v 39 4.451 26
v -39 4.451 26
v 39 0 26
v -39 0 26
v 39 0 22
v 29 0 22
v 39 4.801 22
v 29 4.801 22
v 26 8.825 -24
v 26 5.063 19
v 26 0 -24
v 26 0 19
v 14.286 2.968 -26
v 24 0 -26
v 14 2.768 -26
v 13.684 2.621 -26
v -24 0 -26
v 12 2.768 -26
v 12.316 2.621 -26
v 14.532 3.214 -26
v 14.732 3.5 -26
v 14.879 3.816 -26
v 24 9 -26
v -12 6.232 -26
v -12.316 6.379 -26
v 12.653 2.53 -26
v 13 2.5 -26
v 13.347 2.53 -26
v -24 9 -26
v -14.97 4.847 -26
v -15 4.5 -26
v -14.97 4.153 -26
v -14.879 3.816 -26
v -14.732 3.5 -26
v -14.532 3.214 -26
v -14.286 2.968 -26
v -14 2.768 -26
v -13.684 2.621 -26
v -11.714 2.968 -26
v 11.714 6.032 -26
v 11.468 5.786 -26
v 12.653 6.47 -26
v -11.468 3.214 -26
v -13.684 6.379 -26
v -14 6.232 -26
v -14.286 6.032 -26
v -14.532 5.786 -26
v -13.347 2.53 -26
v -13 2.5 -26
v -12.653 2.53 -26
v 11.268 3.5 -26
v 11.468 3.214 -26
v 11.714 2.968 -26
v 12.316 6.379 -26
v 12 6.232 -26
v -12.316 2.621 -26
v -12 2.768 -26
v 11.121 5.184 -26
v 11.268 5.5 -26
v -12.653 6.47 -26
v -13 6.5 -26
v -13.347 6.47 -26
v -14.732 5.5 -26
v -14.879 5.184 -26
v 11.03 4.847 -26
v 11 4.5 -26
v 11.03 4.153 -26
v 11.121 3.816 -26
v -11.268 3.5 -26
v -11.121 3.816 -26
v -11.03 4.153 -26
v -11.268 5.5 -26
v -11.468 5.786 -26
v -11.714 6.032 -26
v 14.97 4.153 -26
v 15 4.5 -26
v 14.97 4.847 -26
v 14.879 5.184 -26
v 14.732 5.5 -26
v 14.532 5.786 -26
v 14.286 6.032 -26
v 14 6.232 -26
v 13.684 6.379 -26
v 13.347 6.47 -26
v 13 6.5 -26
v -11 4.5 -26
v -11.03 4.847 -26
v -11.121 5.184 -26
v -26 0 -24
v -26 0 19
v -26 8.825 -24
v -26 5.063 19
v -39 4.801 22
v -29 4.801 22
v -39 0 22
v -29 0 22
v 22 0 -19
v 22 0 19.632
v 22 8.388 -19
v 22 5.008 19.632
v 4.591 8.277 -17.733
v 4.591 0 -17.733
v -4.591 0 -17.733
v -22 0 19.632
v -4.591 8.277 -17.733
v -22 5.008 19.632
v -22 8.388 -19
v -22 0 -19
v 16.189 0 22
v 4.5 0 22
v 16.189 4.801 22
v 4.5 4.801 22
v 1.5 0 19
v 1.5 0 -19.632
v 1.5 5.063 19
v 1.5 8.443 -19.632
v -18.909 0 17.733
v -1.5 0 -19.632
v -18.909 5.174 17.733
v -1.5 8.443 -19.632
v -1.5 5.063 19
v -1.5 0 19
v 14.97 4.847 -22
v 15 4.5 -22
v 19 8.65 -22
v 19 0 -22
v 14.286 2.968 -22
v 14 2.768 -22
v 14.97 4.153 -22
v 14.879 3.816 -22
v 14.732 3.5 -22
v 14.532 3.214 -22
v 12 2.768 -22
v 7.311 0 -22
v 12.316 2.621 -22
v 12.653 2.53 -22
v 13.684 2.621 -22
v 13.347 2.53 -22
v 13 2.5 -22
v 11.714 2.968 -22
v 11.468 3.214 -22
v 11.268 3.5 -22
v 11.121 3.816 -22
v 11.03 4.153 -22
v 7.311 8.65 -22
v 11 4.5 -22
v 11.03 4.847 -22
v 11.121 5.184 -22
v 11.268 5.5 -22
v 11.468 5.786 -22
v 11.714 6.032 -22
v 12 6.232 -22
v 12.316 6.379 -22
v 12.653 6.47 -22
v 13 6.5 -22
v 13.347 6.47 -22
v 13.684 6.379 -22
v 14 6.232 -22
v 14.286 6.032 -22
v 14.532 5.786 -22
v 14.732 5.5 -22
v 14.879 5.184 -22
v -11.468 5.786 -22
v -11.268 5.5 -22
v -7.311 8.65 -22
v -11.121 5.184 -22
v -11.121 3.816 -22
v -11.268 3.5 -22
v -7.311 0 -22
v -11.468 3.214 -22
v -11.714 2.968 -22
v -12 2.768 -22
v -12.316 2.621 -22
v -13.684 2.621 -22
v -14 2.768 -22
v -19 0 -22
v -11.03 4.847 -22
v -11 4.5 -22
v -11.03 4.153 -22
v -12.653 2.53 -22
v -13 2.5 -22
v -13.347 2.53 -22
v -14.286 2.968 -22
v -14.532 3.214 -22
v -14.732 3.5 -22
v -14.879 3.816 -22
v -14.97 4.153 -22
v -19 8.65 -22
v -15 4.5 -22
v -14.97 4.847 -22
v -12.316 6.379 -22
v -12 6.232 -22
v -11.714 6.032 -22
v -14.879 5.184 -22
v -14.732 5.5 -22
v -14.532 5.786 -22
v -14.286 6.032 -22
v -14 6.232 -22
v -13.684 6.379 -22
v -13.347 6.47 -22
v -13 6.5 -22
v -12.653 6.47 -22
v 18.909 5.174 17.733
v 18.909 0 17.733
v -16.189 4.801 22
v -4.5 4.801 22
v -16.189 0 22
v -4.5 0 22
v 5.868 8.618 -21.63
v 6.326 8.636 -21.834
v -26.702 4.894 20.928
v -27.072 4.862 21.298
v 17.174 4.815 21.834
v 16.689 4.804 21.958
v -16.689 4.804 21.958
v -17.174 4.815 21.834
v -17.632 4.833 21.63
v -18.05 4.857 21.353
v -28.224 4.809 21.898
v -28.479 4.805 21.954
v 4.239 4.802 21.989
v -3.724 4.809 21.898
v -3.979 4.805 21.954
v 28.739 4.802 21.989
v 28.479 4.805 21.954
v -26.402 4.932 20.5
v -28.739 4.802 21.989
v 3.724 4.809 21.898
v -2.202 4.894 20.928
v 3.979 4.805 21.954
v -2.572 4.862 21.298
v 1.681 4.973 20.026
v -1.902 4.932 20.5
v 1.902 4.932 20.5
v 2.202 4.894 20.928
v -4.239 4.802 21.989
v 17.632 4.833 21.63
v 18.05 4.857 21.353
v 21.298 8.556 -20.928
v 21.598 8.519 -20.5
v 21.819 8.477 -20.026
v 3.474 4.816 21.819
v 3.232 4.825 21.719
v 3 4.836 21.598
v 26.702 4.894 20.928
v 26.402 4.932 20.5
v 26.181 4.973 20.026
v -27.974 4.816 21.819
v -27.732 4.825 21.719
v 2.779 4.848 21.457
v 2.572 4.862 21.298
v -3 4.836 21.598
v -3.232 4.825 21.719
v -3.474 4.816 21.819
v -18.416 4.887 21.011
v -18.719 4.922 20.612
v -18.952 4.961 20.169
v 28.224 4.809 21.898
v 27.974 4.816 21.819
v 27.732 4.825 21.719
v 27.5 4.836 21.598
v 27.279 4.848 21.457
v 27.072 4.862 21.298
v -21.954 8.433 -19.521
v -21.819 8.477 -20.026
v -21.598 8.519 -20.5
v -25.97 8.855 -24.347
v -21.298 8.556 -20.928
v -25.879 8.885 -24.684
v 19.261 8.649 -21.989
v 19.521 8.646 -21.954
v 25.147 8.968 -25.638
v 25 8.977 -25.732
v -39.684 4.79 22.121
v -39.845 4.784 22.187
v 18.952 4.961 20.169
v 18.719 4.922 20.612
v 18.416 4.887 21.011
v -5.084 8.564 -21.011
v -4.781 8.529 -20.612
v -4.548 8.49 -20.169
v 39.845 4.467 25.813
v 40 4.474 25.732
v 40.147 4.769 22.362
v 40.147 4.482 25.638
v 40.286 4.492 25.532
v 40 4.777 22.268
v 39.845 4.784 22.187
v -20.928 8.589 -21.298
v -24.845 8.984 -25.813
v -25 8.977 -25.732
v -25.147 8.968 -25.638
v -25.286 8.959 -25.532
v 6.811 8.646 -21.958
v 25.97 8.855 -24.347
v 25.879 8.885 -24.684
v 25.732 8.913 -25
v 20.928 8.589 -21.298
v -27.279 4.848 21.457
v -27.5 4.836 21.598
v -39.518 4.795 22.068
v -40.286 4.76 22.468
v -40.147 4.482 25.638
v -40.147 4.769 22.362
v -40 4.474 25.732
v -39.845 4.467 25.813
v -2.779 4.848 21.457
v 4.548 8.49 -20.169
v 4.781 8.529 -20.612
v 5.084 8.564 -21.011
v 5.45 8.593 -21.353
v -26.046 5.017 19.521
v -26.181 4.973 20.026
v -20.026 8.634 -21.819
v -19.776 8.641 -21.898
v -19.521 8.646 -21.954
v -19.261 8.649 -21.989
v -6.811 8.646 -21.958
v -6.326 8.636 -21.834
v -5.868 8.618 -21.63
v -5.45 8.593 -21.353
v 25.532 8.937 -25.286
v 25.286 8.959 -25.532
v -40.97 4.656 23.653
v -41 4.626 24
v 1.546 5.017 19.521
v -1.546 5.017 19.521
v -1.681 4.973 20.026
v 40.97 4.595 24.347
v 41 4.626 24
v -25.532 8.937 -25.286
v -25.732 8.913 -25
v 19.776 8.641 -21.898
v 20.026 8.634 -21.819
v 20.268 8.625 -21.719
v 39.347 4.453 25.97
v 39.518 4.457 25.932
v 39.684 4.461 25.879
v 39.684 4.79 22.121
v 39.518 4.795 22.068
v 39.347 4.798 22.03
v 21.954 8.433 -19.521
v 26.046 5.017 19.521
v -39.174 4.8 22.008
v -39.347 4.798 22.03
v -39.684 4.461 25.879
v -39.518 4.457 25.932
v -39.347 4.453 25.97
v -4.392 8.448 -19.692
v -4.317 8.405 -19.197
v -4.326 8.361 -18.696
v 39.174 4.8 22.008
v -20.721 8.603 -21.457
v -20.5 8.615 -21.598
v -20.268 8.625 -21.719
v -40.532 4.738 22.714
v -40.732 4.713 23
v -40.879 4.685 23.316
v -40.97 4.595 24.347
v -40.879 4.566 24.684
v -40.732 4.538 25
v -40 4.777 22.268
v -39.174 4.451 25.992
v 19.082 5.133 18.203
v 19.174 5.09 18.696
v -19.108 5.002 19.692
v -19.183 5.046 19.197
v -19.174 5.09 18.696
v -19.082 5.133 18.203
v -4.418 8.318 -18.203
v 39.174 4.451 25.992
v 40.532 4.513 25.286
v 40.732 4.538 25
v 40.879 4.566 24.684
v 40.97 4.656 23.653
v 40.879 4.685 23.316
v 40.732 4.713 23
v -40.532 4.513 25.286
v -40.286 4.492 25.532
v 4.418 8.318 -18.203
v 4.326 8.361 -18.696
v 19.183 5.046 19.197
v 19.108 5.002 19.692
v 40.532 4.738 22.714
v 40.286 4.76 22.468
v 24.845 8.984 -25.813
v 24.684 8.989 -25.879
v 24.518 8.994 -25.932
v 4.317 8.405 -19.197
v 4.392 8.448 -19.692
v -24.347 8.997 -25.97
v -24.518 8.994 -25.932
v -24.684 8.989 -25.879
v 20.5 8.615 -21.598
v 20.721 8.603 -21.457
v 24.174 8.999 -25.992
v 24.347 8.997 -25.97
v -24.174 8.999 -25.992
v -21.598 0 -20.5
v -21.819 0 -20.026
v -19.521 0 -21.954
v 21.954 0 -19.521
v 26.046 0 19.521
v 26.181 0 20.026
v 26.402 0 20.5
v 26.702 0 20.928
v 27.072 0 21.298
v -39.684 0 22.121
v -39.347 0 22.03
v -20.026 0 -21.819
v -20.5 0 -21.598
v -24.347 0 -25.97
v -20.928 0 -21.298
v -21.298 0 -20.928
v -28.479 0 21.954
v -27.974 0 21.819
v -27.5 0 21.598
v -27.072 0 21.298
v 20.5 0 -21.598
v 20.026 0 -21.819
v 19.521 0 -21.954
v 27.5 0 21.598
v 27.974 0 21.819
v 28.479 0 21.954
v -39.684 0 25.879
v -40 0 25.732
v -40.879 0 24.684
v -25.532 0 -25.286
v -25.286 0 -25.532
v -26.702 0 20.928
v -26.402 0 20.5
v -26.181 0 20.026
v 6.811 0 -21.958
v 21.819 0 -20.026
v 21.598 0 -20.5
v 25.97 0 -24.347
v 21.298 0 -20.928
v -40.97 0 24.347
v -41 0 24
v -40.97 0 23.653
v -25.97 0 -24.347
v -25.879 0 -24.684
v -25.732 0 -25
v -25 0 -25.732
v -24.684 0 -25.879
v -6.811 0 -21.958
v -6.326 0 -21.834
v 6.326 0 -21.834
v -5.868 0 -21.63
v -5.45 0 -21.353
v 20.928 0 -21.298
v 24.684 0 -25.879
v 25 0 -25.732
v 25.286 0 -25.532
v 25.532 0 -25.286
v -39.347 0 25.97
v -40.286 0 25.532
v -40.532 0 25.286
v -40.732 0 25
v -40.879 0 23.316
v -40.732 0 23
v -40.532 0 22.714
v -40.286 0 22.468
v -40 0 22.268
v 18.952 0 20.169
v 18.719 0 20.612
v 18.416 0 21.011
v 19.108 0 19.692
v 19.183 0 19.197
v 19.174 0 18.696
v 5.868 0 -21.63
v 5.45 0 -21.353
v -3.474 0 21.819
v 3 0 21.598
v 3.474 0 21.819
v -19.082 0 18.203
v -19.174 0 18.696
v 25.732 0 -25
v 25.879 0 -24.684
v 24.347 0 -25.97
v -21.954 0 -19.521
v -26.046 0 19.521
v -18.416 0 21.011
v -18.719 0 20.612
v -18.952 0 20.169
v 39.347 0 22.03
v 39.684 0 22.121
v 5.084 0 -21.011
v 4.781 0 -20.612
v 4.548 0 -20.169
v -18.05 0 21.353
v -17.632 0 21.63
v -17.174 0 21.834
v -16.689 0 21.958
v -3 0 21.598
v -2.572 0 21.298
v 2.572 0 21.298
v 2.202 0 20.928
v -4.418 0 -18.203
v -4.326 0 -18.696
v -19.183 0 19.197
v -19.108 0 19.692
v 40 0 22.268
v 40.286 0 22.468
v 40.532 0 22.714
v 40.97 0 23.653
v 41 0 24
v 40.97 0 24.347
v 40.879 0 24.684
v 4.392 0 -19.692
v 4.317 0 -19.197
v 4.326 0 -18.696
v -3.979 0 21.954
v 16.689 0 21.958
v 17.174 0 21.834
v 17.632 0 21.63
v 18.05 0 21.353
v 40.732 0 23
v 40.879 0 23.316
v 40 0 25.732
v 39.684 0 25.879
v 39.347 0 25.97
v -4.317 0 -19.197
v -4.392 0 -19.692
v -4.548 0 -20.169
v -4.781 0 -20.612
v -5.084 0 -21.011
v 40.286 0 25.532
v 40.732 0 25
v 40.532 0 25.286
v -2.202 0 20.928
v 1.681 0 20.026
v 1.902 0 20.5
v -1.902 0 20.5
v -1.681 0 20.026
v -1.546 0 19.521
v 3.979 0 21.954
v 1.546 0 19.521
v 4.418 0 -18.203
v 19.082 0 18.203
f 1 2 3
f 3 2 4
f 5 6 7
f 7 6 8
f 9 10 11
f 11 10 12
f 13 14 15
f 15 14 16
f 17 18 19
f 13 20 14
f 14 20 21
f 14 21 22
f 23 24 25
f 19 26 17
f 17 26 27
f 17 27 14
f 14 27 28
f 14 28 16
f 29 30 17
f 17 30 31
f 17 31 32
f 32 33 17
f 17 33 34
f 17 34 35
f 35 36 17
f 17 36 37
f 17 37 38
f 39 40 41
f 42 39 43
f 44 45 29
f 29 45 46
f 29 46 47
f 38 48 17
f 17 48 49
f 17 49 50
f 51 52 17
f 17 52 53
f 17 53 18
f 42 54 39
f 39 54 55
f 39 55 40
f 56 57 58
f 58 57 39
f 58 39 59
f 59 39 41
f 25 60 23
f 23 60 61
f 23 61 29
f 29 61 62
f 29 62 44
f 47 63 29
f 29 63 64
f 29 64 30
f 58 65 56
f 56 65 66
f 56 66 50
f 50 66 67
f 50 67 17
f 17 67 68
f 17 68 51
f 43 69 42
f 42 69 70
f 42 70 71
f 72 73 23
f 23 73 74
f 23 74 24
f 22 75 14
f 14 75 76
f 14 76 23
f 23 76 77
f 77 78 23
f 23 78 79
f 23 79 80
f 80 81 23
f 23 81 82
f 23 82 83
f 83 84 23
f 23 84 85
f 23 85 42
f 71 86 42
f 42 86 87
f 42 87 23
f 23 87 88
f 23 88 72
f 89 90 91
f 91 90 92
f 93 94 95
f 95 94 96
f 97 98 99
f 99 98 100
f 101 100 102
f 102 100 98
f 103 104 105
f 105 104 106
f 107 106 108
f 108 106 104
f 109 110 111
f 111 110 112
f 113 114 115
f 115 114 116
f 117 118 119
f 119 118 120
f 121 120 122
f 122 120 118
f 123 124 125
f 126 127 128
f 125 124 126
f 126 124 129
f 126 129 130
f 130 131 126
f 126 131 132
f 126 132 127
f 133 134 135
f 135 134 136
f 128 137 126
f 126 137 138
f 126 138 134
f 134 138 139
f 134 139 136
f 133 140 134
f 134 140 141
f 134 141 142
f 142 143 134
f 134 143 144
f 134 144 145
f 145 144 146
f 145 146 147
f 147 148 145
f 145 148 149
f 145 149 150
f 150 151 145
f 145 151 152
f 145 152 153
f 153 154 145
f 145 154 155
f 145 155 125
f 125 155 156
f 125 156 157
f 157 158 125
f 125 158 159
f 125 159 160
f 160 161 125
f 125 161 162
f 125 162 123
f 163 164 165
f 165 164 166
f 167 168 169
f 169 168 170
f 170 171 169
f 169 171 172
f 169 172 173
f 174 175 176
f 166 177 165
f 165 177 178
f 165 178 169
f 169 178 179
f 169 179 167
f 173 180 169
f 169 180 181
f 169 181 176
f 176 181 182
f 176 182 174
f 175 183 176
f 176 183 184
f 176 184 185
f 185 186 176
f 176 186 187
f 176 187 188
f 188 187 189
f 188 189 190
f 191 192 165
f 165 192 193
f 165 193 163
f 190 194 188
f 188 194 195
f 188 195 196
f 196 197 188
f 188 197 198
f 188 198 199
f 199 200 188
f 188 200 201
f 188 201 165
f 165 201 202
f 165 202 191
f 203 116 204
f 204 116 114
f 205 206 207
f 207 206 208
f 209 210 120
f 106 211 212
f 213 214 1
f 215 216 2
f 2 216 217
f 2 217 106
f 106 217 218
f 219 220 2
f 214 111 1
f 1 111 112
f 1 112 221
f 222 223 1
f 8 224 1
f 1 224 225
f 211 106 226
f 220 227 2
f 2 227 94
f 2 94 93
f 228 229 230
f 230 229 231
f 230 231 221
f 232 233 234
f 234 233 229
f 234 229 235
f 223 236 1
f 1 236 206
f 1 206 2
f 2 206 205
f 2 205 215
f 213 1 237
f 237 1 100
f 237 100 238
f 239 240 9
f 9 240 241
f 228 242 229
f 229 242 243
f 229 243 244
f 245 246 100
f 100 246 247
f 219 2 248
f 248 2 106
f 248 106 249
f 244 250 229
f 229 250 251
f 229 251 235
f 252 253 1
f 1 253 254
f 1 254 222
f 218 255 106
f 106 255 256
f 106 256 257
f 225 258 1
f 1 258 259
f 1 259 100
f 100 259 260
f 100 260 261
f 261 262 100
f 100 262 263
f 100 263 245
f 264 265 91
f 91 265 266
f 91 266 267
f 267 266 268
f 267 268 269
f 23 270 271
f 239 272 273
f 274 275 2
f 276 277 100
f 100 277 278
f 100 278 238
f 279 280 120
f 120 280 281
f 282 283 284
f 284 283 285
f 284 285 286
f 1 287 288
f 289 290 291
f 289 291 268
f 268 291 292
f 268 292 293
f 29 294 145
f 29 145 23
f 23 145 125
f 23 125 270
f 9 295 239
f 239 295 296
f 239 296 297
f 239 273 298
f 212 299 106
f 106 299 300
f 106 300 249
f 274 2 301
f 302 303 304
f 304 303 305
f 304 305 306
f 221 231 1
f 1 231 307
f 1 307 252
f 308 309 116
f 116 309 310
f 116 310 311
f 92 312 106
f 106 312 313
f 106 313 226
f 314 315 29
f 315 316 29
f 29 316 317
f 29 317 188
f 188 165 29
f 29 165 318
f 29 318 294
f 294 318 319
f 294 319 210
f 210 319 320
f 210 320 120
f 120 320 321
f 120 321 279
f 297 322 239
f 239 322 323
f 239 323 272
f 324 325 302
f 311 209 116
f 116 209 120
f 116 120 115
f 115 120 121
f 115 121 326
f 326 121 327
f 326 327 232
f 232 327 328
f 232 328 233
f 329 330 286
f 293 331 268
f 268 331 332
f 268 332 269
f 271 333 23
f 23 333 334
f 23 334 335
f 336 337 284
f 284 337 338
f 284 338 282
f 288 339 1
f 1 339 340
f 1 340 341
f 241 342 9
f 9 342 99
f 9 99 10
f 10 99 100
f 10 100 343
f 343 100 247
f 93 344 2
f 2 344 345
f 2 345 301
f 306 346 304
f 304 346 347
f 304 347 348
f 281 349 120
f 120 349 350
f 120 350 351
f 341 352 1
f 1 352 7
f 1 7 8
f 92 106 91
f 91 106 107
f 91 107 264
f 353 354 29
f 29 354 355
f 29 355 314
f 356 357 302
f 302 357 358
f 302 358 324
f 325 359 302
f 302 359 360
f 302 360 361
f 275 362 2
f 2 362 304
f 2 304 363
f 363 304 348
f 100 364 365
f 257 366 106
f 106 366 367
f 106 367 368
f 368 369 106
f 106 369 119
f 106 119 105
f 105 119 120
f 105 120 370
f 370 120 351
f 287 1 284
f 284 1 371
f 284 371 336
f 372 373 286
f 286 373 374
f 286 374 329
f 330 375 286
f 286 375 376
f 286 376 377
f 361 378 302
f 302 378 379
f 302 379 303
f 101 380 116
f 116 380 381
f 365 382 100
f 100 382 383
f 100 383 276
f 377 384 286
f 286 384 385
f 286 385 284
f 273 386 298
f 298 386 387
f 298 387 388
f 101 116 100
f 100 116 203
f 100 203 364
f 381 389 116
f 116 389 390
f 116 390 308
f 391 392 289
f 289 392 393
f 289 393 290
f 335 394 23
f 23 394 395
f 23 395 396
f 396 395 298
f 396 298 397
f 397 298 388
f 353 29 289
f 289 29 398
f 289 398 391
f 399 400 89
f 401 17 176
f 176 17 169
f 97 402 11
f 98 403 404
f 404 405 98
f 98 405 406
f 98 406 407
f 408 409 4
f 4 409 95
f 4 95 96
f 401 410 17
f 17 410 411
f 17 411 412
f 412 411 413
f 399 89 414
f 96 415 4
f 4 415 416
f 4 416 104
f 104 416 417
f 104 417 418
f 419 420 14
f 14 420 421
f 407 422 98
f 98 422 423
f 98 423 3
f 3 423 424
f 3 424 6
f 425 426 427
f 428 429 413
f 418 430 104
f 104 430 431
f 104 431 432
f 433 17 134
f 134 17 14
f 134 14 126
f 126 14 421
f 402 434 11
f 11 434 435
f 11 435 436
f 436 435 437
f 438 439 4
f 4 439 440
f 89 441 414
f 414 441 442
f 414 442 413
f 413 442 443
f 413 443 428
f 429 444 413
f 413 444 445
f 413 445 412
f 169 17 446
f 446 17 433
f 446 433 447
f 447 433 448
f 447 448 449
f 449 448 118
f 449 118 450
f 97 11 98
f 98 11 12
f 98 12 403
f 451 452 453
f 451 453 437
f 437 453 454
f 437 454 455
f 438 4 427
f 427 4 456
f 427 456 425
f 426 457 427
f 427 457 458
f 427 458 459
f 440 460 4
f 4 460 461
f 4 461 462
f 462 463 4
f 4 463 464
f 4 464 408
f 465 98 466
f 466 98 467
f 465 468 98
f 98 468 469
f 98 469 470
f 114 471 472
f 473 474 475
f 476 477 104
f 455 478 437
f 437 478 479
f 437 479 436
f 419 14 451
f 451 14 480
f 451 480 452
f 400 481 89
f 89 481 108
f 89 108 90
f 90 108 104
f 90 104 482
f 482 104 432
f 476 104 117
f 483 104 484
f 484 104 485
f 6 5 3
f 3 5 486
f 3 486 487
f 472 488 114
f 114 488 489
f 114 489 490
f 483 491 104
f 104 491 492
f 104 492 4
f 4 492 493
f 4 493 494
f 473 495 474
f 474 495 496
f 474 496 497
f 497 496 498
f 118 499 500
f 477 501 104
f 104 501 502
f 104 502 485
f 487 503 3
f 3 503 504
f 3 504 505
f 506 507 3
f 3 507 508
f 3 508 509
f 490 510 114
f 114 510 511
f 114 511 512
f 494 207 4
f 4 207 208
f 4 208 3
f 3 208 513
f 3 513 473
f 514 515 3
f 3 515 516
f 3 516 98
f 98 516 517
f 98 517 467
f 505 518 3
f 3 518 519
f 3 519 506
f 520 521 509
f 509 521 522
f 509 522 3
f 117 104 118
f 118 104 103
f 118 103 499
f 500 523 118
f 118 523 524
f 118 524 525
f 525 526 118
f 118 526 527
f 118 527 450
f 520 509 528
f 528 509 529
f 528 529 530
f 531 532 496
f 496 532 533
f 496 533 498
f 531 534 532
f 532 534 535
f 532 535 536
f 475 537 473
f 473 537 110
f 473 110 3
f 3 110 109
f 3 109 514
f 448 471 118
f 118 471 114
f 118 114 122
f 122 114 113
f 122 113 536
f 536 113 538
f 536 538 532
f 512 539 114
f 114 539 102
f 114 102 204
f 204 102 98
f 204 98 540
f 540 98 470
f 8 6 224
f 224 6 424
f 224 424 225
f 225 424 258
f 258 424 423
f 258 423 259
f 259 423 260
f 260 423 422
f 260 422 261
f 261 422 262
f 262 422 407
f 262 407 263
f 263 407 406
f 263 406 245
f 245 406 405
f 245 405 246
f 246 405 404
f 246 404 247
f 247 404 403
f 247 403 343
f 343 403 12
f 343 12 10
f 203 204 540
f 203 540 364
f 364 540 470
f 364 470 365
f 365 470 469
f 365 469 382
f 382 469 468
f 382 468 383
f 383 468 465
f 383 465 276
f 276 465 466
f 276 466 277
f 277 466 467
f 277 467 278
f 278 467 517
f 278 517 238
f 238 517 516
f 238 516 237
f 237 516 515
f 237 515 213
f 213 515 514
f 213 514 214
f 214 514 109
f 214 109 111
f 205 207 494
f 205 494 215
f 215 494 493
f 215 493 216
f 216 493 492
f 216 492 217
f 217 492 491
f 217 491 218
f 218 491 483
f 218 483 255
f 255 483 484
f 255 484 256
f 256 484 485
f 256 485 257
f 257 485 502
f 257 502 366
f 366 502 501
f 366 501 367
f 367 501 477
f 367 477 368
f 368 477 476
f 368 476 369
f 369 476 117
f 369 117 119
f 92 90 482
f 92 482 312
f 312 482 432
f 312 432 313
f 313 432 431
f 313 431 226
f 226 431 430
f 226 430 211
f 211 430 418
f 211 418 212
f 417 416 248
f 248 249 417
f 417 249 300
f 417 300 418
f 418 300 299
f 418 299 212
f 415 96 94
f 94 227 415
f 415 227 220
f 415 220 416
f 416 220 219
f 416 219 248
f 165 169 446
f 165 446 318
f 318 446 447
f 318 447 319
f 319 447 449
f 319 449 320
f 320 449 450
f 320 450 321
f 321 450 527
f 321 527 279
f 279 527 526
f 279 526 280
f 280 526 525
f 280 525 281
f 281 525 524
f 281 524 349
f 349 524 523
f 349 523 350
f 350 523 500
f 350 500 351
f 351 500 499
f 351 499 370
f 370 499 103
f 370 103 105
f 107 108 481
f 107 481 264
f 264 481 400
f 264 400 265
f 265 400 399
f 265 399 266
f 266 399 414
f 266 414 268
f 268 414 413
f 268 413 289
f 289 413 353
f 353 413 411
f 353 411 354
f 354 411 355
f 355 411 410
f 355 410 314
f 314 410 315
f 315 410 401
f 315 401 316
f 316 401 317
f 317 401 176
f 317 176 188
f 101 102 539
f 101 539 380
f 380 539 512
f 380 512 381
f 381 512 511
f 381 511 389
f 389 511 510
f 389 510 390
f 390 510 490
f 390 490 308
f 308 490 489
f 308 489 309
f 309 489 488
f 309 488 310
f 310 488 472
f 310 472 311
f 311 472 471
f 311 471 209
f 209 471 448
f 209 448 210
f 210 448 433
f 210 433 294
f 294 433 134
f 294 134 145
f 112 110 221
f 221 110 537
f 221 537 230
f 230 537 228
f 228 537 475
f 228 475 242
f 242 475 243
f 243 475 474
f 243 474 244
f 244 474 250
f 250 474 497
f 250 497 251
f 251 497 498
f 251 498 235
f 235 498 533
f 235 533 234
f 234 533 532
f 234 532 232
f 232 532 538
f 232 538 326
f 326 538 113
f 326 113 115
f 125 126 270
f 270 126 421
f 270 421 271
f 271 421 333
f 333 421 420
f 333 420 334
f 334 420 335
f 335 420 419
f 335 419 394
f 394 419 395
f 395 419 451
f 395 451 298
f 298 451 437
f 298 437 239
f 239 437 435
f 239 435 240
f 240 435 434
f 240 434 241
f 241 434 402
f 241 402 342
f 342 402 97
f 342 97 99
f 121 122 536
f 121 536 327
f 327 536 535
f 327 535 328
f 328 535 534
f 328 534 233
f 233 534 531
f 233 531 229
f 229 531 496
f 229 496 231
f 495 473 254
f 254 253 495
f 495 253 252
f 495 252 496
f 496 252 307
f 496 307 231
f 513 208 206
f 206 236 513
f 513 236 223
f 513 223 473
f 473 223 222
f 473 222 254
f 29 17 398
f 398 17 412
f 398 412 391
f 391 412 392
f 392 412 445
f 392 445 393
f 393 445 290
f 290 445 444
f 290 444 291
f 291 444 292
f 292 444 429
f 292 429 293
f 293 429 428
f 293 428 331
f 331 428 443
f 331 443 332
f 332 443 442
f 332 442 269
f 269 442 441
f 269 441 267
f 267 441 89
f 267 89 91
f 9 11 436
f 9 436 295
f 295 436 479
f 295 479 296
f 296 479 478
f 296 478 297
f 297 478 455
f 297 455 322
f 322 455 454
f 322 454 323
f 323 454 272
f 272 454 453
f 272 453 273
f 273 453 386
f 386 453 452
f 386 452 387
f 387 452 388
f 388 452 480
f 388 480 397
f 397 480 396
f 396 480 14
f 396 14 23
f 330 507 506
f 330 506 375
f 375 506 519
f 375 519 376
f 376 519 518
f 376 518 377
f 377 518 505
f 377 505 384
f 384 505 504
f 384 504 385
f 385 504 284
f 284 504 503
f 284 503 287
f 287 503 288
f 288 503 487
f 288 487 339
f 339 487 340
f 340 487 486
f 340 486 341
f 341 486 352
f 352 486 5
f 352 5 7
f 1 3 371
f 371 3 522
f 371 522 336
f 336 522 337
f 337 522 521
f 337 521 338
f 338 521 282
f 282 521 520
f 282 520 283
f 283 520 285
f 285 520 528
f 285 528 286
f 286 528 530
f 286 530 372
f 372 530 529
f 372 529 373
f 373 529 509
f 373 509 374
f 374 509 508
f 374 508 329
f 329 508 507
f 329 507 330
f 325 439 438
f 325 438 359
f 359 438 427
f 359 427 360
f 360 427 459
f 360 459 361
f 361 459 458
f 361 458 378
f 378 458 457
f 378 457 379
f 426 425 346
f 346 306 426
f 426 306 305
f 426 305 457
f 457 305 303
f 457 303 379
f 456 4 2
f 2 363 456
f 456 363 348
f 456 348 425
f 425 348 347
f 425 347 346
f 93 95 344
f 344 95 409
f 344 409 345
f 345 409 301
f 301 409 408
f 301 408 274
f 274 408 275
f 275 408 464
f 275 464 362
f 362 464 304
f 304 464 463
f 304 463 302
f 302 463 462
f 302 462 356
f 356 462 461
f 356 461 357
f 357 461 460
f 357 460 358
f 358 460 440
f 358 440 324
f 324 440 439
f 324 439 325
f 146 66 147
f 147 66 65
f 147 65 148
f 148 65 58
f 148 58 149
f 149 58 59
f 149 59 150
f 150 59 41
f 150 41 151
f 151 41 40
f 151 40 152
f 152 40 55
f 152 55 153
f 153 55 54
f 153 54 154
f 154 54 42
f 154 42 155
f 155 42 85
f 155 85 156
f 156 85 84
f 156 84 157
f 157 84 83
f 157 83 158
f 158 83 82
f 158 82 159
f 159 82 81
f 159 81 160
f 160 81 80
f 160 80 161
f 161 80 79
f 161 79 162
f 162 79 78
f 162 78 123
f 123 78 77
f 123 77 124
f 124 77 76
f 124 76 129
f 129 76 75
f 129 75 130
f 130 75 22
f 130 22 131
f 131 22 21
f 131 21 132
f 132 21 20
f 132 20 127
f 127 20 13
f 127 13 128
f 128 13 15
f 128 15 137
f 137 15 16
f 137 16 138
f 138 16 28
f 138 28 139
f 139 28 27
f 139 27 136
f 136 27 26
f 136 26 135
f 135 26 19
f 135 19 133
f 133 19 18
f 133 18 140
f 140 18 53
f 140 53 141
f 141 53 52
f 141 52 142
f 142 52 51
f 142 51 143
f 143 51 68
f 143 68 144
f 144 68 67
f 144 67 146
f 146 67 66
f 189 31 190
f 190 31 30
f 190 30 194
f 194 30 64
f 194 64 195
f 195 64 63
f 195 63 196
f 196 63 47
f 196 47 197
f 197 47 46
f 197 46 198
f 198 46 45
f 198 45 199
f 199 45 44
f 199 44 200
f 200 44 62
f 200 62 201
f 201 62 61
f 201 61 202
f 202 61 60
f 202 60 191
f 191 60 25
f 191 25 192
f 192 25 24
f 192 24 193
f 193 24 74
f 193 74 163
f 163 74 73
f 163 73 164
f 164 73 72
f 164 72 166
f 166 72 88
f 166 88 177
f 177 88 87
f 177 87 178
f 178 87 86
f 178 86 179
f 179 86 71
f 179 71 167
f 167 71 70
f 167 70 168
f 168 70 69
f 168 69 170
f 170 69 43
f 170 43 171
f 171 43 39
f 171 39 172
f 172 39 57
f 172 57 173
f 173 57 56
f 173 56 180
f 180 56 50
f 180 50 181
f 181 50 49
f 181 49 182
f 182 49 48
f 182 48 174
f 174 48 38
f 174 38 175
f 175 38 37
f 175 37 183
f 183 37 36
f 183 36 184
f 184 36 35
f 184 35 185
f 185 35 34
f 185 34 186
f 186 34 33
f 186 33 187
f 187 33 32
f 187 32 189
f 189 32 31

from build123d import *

# Parameters (mm, degrees)
BOSS_EXTRUDE1_DEPTH = 9
FILLET1_R           = 3
FILLET2_R           = 2
CUT_EXTRUDE1_REACH  = 68.828
SKETCH2_R           = 2
DRAFT1_START        = 6.699702971
DRAFT1_OUTLINE_W    = 84
DRAFT1_OUTLINE_H    = 55
DRAFT1_DEPTH        = 4.532098623


# Read off the part's stored shape, not the designer's step: Draft1
with BuildPart() as part:
    # Sketch1 → Boss-Extrude1 (new body)
    # profile 1 of 4: a face of its own
    with BuildSketch(Plane(origin=(0, 0, 0), x_dir=(1, 0, 0), z_dir=(0, 1, 0))):
        Polygon((26, 26), (-26, 26), (-26, -22), (-41, -22), (-41, -26), (-26, -26), (26, -26), (41, -26), (41, -22), (26, -22), align=None)
        Polygon((-22, -19.632135629), (-22, 22), (-2.603209536, 22), (-1.5, 22), (-1.5, 19.632135629), (-1.5, -22), (-20.896790464, -22), (-22, -22), align=None, mode=Mode.SUBTRACT)
        Polygon((1.5, 19.632135629), (1.5, 22), (2.603209536, 22), (22, 22), (22, -19.632135629), (22, -22), (20.896790464, -22), (1.5, -22), align=None, mode=Mode.SUBTRACT)
    # profile 2 of 4: a face of its own
    with BuildSketch(Plane(origin=(0, 0, 0), x_dir=(1, 0, 0), z_dir=(0, 1, 0))):
        Polygon((26, 26), (-26, 26), (-26, -22), (-41, -22), (-41, -26), (-26, -26), (26, -26), (41, -26), (41, -22), (26, -22), align=None)
        Polygon((-22, -19.632135629), (-22, 22), (-2.603209536, 22), (-1.5, 22), (-1.5, 19.632135629), (-1.5, -22), (-20.896790464, -22), (-22, -22), align=None, mode=Mode.SUBTRACT)
        Polygon((1.5, 19.632135629), (1.5, 22), (2.603209536, 22), (22, 22), (22, -19.632135629), (22, -22), (20.896790464, -22), (1.5, -22), align=None, mode=Mode.SUBTRACT)
    # profile 3 of 4: a face of its own
    with BuildSketch(Plane(origin=(0, 0, 0), x_dir=(1, 0, 0), z_dir=(0, 1, 0))):
        Polygon((-1.5, 22), (-2.603209536, 22), (-22, -19.632135629), (-22, -22), (-20.896790464, -22), (-1.5, 19.632135629), align=None)
    # profile 4 of 4: a face of its own
    with BuildSketch(Plane(origin=(0, 0, 0), x_dir=(1, 0, 0), z_dir=(0, 1, 0))):
        Polygon((2.603209536, 22), (1.5, 22), (1.5, 19.632135629), (20.896790464, -22), (22, -22), (22, -19.632135629), align=None)
    extrude(amount=BOSS_EXTRUDE1_DEPTH)

    # Fillet1
    fillet1_edges = [part.edges().sort_by_distance(p)[0] for p in [
        (-26, 4.5, 22),
        (26, 4.5, 22),
        (22, 4.5, -22),
        (2.603209536, 4.5, -22),
        (-2.603209536, 4.5, -22),
        (-22, 4.5, -22),
        (20.896790464, 4.5, 22),
        (1.5, 4.5, 22),
        (-20.896790464, 4.5, 22),
        (-1.5, 4.5, 22),
    ]]
    fillet(fillet1_edges, radius=FILLET1_R)

    # Fillet2
    fillet2_edges = [part.edges().sort_by_distance(p)[0] for p in [
        (-26, 4.5, -26),
        (26, 4.5, -26),
        (41, 4.5, 26),
        (41, 4.5, 22),
        (-41, 4.5, 22),
        (-41, 4.5, 26),
    ]]
    fillet(fillet2_edges, radius=FILLET2_R - 0.0001)  # a hair under: the kernel refuses the full size

    # Sketch2 → Cut-Extrude1 (cut, up to next)
    with BuildSketch(Plane(origin=(0, 0, -26), x_dir=(-1, 0, 0), z_dir=(0, 0, -1)), mode=Mode.PRIVATE) as cut_extrude1_sk1:
        with Locations((-13, 4.5)):
            Circle(SKETCH2_R)
    cut_extrude1_tool1 = extrude(cut_extrude1_sk1.sketch, amount=-CUT_EXTRUDE1_REACH, mode=Mode.PRIVATE) & part.part
    # Sketch2 → Cut-Extrude1 (cut, up to next)
    with BuildSketch(Plane(origin=(0, 0, -26), x_dir=(-1, 0, 0), z_dir=(0, 0, -1)), mode=Mode.PRIVATE) as cut_extrude1_sk2:
        with Locations((13, 4.5)):
            Circle(SKETCH2_R)
    cut_extrude1_tool2 = extrude(cut_extrude1_sk2.sketch, amount=-CUT_EXTRUDE1_REACH, mode=Mode.PRIVATE) & part.part
    add(cut_extrude1_tool1.solids().sort_by_distance((13, 4.5, -26))[0], mode=Mode.SUBTRACT)
    add(cut_extrude1_tool2.solids().sort_by_distance((-13, 4.5, -26))[0], mode=Mode.SUBTRACT)

    # Draft1 outline → Draft1 (cut)
    with BuildSketch(Plane(origin=(0, 0, 0), x_dir=(1, 0, 0), z_dir=(0, 0.9961946980917455, 0.08715574274765815)).offset(DRAFT1_START)):
        with Locations((0, 0.5)):
            Rectangle(DRAFT1_OUTLINE_W, DRAFT1_OUTLINE_H)
    extrude(amount=DRAFT1_DEPTH, mode=Mode.SUBTRACT)


solid = part.part
